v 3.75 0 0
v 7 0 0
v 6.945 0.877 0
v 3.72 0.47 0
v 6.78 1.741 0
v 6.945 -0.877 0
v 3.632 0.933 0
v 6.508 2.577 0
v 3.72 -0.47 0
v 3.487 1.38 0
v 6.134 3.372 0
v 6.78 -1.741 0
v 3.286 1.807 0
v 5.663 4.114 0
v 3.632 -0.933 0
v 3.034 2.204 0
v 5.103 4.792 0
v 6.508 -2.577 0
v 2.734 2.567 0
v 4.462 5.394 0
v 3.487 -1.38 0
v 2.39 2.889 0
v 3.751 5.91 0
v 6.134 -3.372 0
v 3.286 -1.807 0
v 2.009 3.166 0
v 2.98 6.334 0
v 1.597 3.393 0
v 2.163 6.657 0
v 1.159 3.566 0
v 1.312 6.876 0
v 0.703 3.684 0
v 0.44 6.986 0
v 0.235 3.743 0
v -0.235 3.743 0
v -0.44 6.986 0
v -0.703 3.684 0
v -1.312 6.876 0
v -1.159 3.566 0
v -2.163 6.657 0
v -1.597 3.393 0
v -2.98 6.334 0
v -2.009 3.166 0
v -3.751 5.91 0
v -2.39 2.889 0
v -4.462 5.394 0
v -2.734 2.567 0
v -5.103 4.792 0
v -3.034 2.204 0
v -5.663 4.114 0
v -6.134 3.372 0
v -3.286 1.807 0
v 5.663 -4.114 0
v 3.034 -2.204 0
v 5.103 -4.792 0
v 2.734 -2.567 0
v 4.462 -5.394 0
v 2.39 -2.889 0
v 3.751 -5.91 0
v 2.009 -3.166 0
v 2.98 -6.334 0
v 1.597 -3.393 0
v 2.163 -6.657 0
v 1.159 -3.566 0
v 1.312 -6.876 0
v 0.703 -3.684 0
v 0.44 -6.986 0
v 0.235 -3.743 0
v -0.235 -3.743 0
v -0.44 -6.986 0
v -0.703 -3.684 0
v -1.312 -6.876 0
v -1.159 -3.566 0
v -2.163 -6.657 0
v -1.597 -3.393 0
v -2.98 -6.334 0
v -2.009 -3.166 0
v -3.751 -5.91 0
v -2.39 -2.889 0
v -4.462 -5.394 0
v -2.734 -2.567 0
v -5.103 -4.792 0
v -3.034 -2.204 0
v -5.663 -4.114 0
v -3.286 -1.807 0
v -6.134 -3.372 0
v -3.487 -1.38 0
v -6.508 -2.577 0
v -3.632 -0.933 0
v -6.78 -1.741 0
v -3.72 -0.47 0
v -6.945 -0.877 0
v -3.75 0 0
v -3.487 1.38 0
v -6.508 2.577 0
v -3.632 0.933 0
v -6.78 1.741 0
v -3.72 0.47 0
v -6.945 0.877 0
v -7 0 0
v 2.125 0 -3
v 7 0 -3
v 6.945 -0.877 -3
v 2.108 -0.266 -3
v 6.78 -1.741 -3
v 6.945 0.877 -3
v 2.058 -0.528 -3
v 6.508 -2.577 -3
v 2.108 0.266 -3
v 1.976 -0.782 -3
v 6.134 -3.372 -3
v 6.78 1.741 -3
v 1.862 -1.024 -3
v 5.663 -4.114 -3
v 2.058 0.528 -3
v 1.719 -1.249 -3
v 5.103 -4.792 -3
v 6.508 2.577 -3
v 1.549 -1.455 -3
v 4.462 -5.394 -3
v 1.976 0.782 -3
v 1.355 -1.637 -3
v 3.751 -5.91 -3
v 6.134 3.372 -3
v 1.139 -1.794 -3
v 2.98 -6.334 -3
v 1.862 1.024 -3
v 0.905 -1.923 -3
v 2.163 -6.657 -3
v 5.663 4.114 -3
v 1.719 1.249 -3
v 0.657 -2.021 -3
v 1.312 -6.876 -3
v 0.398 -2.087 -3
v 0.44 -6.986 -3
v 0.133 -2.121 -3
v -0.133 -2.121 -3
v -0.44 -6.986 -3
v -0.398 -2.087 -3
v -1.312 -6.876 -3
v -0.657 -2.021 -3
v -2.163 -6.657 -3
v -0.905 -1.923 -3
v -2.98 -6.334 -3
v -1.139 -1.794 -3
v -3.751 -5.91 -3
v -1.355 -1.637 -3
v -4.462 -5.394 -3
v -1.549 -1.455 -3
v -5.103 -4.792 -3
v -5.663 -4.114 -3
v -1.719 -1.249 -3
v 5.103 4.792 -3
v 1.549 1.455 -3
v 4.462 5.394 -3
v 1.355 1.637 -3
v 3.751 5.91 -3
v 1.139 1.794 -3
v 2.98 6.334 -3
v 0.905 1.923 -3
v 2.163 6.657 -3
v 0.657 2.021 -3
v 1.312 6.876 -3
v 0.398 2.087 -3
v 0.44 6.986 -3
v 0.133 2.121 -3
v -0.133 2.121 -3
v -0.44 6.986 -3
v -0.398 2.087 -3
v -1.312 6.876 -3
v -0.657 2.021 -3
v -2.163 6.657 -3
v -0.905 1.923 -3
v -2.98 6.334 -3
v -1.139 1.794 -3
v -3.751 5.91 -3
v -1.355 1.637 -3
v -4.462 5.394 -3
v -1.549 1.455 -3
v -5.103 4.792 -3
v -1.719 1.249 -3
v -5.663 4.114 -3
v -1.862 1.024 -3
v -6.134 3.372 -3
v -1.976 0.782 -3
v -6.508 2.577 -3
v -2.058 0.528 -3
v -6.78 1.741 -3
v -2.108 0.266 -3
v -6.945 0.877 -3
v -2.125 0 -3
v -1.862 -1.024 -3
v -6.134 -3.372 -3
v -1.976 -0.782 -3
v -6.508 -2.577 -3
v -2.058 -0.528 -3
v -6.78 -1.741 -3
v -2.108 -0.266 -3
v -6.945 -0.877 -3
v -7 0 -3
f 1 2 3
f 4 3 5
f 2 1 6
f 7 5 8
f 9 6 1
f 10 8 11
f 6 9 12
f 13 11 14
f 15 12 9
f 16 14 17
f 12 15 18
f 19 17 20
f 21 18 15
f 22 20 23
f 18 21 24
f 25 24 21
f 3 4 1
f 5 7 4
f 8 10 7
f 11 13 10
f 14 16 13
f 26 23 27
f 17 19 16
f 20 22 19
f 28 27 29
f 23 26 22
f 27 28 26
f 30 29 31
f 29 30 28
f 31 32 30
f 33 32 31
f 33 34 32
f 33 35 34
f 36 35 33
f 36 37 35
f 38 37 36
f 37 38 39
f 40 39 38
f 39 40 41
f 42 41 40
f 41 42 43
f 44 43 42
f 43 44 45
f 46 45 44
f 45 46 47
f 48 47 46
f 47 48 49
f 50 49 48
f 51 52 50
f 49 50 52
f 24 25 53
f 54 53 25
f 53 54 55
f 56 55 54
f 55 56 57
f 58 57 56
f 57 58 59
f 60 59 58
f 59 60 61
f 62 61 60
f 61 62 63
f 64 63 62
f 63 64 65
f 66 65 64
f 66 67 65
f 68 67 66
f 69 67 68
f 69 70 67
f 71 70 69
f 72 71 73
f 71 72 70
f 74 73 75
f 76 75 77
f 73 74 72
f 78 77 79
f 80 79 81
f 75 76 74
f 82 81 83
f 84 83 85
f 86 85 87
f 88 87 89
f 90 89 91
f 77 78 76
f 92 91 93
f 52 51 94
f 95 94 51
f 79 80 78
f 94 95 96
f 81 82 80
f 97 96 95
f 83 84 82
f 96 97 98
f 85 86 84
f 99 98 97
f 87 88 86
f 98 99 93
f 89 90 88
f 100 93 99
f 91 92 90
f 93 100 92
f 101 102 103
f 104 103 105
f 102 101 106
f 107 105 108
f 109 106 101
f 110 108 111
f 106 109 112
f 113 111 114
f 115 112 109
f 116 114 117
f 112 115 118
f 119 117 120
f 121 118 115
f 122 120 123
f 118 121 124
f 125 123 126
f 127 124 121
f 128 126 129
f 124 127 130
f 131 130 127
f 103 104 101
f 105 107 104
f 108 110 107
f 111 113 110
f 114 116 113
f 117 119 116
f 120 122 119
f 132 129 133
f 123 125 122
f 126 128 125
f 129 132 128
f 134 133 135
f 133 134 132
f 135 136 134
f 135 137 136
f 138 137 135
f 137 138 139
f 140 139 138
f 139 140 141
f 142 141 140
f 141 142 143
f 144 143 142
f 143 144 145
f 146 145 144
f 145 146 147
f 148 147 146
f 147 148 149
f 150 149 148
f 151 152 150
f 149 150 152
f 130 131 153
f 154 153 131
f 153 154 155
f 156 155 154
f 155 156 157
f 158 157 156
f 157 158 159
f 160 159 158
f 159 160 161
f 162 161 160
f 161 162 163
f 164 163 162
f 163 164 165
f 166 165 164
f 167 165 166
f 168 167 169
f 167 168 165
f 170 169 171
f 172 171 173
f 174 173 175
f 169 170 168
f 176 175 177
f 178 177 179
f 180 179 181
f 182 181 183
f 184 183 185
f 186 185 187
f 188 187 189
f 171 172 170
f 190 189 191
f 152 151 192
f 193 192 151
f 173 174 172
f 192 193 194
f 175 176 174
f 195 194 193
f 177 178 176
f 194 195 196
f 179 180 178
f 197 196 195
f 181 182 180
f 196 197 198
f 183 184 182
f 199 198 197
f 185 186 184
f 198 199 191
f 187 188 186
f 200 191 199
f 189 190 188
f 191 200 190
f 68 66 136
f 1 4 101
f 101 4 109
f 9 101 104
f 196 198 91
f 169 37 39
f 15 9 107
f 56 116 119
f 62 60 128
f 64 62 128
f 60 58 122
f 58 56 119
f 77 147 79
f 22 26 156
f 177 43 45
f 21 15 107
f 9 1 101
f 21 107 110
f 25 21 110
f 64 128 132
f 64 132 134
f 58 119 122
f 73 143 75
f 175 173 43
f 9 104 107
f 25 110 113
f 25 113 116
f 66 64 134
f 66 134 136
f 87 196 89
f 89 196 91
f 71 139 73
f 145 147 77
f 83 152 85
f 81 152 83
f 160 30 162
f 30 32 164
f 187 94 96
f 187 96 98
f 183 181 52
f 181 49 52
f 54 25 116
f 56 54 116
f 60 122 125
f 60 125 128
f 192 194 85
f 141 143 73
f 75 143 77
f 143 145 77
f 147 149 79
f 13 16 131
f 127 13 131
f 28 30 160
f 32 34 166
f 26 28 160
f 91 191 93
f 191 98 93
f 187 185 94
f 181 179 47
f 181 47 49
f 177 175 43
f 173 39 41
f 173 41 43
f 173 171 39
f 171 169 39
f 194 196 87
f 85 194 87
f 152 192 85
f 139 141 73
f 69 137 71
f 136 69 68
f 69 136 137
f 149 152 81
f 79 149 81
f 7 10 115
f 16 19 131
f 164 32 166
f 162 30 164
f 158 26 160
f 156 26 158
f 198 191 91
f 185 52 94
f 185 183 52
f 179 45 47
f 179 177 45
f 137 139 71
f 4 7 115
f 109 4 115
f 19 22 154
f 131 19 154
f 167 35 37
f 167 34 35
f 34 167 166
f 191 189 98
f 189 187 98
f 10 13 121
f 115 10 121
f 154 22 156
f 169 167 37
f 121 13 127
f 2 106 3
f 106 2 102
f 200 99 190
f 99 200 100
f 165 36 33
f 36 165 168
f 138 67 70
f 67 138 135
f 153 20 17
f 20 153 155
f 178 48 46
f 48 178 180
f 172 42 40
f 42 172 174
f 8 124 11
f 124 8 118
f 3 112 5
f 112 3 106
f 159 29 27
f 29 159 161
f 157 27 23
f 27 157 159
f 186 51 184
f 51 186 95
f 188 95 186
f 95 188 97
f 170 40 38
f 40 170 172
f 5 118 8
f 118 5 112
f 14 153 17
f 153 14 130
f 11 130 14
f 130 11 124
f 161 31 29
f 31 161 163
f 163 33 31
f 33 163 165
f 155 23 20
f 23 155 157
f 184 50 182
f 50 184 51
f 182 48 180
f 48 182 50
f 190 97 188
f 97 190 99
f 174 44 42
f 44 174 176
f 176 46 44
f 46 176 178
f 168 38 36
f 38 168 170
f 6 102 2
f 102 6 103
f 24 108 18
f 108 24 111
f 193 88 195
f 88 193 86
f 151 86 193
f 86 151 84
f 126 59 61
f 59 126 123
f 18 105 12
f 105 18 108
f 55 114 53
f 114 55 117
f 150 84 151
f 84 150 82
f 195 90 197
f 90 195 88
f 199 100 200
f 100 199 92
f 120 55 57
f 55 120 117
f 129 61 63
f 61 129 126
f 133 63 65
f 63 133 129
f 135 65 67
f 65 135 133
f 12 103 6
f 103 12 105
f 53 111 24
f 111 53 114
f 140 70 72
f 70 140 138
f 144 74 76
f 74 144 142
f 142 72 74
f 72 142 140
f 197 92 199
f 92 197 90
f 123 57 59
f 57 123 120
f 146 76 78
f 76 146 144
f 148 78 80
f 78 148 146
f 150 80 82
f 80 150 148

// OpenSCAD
$fn = 50;


difference() {
	union() {
		translate(v = [0, 0, -3.0000000000]) {
			cylinder(h = 3, r = 7.0000000000);
		}
		cylinder(h = 0, r = 10.0000000000);
	}
	union() {
		translate(v = [0, 0, 0]) {
			rotate(a = [0, 0, 0]) {
				difference() {
					union() {
						#translate(v = [0, 0, -3.0000000000]) {
							cylinder(h = 3, r = 2.0000000000);
						}
						#translate(v = [0, 0, -3]) {
							cylinder(h = 3, r1 = 2.1250000000, r2 = 3.7500000000);
						}
						#translate(v = [0, 0, -3.0000000000]) {
							cylinder(h = 3, r = 2.1250000000);
						}
						#translate(v = [0, 0, -3.0000000000]) {
							cylinder(h = 3, r = 2.0000000000);
						}
					}
					union();
				}
			}
		}
	}
}
